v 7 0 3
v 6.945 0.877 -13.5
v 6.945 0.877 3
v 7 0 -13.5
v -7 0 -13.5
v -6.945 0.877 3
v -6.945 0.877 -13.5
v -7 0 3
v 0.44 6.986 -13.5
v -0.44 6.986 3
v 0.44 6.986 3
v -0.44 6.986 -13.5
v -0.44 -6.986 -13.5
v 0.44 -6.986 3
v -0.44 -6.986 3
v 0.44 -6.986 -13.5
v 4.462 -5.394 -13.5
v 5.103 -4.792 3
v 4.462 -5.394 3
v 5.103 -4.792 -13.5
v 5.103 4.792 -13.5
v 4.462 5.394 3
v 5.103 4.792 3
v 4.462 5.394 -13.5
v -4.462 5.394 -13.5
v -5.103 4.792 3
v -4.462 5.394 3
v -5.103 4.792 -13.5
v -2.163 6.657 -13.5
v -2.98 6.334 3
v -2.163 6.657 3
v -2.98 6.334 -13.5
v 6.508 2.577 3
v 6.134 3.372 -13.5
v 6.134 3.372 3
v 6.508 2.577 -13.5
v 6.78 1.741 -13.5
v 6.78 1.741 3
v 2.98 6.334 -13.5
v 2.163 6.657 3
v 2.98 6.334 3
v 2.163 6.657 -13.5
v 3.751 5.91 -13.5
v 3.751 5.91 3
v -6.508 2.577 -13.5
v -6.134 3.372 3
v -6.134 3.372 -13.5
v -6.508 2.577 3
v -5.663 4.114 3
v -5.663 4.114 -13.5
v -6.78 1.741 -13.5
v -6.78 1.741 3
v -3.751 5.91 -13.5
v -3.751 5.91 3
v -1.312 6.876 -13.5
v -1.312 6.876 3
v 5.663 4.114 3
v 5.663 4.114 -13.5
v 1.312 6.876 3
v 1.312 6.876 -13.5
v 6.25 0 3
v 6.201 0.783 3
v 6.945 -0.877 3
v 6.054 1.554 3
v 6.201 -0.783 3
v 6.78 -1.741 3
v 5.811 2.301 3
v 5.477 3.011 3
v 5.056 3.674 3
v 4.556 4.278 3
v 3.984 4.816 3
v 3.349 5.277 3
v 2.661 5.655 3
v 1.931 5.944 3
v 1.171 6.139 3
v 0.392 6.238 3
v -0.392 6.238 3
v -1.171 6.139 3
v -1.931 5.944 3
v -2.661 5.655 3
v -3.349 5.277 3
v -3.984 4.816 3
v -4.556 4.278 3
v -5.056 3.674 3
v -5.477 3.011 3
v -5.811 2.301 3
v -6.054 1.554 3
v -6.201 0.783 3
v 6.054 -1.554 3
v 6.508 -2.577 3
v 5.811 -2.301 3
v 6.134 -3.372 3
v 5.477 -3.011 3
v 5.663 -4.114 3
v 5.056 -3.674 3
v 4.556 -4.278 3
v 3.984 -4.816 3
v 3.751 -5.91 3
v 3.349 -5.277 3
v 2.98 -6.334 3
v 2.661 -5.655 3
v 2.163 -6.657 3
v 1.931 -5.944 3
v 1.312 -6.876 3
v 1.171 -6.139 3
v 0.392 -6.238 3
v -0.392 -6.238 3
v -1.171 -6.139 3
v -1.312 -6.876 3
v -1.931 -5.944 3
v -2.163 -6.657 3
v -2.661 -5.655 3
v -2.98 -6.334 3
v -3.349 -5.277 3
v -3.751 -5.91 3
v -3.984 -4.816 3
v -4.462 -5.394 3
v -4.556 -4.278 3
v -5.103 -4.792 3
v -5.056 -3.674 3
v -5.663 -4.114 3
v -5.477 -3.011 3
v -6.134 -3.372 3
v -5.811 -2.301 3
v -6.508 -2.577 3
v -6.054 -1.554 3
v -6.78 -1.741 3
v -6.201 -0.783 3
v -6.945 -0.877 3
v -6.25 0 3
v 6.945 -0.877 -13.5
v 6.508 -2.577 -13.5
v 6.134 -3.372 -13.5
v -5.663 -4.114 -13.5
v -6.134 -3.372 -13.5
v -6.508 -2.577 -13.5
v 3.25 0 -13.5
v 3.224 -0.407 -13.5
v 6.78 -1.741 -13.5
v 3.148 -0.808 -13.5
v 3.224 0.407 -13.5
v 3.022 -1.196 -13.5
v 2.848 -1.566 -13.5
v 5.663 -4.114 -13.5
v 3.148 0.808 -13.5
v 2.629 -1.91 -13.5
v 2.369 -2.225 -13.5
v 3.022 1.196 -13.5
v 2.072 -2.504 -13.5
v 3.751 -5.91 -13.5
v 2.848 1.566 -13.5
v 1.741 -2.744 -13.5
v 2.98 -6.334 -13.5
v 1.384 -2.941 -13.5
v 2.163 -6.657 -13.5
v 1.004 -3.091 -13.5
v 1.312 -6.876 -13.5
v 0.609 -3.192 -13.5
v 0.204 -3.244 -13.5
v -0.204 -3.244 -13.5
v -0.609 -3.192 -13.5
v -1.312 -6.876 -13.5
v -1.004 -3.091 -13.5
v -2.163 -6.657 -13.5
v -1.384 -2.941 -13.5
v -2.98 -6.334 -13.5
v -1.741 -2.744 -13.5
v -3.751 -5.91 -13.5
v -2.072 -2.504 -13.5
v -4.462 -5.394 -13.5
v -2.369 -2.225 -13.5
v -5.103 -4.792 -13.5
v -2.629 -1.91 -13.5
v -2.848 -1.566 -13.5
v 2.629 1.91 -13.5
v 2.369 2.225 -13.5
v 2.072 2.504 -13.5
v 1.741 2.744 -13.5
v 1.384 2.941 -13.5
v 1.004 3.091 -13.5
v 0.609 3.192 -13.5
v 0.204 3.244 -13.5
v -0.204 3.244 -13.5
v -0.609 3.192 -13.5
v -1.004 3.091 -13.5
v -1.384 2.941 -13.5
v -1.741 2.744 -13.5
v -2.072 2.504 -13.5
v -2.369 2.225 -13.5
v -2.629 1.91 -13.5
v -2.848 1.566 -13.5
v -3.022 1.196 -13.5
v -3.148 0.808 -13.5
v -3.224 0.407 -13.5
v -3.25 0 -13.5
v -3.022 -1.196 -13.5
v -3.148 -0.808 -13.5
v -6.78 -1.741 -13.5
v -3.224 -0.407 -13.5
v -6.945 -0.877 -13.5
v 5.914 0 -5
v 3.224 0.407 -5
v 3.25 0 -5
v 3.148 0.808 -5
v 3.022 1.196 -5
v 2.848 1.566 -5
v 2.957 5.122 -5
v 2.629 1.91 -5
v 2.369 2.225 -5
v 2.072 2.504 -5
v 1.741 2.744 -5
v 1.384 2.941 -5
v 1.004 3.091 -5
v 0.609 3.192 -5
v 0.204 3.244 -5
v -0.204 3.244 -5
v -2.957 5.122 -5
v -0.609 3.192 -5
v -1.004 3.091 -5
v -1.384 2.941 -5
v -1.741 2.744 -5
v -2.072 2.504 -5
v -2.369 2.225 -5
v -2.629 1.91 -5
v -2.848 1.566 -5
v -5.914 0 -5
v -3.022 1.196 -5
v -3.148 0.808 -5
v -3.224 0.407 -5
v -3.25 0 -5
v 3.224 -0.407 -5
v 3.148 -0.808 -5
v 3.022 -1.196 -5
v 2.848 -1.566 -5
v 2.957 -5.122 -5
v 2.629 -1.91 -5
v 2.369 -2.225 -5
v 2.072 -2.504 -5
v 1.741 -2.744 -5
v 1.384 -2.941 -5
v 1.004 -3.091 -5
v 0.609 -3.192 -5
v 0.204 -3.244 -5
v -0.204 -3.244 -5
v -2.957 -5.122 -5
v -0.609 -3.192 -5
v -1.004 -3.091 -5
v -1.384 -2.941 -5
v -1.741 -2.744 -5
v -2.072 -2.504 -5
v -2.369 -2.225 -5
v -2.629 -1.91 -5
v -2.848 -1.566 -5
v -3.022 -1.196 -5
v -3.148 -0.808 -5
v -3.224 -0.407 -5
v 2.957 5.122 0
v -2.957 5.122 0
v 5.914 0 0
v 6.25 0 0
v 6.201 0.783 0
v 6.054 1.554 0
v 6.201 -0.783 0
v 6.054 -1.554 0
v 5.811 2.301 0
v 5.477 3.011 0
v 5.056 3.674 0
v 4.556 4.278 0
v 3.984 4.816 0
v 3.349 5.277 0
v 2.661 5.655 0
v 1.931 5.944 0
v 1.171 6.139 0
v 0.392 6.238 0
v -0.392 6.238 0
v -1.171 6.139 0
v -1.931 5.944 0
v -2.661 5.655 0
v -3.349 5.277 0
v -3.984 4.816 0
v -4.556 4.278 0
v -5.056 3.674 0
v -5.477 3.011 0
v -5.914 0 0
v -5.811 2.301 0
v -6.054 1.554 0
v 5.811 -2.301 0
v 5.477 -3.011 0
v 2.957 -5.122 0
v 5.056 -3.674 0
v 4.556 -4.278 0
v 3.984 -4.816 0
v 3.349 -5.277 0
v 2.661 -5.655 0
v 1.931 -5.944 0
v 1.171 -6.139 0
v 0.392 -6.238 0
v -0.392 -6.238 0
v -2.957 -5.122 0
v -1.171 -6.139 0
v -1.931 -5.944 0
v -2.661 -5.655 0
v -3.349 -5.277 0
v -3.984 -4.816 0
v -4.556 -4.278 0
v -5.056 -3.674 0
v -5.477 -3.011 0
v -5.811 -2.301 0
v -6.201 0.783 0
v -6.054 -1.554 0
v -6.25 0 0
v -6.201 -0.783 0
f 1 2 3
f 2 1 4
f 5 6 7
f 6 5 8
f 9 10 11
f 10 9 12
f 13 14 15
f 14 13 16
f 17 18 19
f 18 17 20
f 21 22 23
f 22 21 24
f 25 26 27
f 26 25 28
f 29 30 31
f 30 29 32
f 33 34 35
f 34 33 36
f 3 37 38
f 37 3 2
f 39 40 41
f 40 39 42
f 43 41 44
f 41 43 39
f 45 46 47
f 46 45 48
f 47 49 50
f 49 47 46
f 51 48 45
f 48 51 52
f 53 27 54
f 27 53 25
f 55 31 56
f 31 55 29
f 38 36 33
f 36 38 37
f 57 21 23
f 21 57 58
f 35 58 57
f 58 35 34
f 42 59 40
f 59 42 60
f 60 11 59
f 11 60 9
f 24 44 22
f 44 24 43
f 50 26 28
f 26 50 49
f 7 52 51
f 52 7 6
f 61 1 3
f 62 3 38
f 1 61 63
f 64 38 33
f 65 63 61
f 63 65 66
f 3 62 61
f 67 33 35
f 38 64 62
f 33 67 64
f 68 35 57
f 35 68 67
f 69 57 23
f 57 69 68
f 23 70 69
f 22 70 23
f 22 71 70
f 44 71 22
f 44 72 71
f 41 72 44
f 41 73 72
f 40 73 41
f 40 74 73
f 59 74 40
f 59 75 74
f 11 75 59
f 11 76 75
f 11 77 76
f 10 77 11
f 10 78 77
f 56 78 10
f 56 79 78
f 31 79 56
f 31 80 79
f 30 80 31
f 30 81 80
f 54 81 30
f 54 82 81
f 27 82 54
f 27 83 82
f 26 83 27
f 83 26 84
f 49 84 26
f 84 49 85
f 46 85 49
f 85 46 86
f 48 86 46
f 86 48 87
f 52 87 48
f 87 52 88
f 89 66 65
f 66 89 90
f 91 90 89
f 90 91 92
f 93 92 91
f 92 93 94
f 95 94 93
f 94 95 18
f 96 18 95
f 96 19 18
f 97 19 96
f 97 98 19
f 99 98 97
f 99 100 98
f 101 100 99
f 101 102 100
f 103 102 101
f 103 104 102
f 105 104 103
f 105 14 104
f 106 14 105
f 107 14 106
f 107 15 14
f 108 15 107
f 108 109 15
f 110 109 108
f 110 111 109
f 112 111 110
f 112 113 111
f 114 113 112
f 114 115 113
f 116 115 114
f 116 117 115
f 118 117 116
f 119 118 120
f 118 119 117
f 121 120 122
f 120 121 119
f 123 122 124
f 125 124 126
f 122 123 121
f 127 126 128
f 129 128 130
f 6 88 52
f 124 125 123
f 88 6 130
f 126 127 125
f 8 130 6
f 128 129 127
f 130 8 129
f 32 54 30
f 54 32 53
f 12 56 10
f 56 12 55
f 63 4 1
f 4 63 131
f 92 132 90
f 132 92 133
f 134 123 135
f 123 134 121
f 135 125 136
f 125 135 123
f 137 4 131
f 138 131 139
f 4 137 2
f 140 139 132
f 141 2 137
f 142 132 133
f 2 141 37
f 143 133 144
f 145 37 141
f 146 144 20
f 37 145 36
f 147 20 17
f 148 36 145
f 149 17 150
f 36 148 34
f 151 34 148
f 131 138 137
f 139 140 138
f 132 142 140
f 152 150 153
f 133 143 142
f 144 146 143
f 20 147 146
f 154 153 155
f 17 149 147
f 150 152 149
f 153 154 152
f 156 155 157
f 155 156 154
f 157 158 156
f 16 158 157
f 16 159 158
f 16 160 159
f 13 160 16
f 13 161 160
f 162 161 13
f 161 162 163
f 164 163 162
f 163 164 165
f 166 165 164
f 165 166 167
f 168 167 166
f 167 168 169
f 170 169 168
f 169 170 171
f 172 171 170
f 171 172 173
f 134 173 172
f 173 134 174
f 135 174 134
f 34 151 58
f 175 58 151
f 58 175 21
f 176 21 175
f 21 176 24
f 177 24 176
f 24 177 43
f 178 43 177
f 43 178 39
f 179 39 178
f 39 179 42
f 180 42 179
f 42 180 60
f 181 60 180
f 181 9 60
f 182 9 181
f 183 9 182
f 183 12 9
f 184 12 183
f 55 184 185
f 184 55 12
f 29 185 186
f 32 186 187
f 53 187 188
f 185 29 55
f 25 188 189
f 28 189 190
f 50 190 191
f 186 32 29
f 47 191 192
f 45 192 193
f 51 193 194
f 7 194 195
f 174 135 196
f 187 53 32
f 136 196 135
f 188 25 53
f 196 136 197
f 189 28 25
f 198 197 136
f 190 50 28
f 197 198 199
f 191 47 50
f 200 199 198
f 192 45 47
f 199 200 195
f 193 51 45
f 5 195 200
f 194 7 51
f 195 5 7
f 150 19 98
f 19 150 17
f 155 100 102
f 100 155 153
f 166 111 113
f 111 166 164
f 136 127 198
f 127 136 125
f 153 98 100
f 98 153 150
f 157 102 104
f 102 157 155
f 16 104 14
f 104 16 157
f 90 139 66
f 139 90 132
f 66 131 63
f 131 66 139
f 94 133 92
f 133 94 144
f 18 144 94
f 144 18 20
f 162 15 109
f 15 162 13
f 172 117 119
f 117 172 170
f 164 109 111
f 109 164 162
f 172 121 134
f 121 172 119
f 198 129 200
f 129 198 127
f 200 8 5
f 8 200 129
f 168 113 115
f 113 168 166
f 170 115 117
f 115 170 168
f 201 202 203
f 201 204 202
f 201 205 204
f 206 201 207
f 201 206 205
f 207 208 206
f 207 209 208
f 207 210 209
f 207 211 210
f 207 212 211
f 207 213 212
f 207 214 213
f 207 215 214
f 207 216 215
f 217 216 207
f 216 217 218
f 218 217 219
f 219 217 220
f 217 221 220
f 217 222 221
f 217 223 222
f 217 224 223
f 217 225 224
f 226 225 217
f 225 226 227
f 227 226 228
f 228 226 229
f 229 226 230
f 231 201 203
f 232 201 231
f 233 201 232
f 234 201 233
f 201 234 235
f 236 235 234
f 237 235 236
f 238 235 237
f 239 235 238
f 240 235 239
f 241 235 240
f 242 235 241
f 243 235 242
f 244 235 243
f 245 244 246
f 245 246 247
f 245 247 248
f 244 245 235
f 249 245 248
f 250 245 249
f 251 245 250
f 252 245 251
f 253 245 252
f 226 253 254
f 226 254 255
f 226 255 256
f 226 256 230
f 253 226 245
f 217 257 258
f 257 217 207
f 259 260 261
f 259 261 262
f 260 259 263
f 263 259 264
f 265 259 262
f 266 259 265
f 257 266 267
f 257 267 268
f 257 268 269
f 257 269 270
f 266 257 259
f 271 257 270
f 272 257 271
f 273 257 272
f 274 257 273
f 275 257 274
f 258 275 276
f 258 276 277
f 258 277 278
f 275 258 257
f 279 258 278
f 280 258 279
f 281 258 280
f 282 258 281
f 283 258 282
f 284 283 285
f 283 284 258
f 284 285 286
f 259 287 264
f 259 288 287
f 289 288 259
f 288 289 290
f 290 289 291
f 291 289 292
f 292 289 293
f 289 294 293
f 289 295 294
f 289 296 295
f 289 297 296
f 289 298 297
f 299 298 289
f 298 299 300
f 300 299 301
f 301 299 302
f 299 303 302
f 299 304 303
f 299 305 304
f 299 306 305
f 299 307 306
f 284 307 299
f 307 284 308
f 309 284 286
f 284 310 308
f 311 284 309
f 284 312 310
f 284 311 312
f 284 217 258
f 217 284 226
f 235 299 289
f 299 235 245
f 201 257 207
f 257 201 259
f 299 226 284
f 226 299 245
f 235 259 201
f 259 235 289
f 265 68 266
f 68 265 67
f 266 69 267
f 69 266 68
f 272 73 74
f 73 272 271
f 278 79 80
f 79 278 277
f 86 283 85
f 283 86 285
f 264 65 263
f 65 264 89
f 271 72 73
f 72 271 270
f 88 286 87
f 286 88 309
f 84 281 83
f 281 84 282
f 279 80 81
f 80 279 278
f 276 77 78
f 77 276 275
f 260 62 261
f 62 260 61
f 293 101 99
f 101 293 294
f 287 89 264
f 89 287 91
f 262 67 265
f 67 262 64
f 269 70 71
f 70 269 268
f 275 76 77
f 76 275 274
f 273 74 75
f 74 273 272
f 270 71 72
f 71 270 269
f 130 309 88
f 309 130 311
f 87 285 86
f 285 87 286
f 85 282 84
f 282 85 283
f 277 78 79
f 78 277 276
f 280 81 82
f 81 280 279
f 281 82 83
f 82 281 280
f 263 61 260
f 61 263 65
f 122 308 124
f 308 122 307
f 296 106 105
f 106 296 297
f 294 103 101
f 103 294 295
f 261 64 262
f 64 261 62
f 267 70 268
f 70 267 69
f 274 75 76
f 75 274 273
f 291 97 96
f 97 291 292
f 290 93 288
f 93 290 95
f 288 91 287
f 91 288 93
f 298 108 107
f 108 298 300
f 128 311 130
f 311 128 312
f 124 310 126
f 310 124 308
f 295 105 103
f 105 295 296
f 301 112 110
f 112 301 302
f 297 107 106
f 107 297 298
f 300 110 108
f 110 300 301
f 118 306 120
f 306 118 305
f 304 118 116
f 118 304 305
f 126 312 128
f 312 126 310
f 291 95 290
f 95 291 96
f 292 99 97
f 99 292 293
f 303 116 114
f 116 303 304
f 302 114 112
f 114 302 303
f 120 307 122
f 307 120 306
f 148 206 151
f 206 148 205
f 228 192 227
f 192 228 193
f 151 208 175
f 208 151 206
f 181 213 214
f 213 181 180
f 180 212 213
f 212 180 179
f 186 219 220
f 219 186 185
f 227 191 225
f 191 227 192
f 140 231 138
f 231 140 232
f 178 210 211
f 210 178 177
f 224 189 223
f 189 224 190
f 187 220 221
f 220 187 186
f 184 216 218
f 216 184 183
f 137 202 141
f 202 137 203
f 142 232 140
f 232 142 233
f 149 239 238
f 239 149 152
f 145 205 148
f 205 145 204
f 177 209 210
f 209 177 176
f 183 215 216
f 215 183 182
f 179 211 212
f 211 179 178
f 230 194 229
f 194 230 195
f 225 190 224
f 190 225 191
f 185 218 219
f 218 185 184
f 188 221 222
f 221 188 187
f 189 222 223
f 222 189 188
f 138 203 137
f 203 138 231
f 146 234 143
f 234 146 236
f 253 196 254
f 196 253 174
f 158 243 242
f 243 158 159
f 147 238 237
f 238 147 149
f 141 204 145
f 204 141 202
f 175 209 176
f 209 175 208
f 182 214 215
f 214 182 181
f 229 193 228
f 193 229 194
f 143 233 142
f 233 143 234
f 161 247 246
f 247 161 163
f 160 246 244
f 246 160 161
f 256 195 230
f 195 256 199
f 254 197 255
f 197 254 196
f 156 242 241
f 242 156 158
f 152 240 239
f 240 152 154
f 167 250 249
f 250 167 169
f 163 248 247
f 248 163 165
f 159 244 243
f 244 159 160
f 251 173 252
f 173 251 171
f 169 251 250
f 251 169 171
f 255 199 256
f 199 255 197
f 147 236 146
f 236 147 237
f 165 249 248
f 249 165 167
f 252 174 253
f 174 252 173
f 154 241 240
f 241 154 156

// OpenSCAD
$fn = 50;

difference() {
	union() {
		translate(v = [0, 0, -13.5]) {
			cylinder(h = 16.5, r = 7.0);
		}
		#translate(v = [0, 0, -15.0]) {
			cylinder(h = 15, r = 2.875);
		}
	}
	union() {
		translate(v = [0, 0, 0]) {
			rotate(a = [0, 0, 0]) {
				difference() {
					union() {
						translate(v = [0, 0, -5]) {
							linear_extrude(height = 5) {
								polygon(points = [[5.914249999999999, 0.0], [2.957125, 5.1218907443321156], [-2.9571249999999982, 5.1218907443321156], [-5.914249999999999, 7.242867331857232e-16], [-2.9571250000000022, -5.121890744332115], [2.9571249999999956, -5.121890744332118]]);
							}
						}
					}
					union();
				}
			}
		}
		#cylinder(h = 3, r = 6.25);
		#translate(v = [0, 0, -100.0]) {
			cylinder(h = 200, r = 3.25);
		}
	}
}
